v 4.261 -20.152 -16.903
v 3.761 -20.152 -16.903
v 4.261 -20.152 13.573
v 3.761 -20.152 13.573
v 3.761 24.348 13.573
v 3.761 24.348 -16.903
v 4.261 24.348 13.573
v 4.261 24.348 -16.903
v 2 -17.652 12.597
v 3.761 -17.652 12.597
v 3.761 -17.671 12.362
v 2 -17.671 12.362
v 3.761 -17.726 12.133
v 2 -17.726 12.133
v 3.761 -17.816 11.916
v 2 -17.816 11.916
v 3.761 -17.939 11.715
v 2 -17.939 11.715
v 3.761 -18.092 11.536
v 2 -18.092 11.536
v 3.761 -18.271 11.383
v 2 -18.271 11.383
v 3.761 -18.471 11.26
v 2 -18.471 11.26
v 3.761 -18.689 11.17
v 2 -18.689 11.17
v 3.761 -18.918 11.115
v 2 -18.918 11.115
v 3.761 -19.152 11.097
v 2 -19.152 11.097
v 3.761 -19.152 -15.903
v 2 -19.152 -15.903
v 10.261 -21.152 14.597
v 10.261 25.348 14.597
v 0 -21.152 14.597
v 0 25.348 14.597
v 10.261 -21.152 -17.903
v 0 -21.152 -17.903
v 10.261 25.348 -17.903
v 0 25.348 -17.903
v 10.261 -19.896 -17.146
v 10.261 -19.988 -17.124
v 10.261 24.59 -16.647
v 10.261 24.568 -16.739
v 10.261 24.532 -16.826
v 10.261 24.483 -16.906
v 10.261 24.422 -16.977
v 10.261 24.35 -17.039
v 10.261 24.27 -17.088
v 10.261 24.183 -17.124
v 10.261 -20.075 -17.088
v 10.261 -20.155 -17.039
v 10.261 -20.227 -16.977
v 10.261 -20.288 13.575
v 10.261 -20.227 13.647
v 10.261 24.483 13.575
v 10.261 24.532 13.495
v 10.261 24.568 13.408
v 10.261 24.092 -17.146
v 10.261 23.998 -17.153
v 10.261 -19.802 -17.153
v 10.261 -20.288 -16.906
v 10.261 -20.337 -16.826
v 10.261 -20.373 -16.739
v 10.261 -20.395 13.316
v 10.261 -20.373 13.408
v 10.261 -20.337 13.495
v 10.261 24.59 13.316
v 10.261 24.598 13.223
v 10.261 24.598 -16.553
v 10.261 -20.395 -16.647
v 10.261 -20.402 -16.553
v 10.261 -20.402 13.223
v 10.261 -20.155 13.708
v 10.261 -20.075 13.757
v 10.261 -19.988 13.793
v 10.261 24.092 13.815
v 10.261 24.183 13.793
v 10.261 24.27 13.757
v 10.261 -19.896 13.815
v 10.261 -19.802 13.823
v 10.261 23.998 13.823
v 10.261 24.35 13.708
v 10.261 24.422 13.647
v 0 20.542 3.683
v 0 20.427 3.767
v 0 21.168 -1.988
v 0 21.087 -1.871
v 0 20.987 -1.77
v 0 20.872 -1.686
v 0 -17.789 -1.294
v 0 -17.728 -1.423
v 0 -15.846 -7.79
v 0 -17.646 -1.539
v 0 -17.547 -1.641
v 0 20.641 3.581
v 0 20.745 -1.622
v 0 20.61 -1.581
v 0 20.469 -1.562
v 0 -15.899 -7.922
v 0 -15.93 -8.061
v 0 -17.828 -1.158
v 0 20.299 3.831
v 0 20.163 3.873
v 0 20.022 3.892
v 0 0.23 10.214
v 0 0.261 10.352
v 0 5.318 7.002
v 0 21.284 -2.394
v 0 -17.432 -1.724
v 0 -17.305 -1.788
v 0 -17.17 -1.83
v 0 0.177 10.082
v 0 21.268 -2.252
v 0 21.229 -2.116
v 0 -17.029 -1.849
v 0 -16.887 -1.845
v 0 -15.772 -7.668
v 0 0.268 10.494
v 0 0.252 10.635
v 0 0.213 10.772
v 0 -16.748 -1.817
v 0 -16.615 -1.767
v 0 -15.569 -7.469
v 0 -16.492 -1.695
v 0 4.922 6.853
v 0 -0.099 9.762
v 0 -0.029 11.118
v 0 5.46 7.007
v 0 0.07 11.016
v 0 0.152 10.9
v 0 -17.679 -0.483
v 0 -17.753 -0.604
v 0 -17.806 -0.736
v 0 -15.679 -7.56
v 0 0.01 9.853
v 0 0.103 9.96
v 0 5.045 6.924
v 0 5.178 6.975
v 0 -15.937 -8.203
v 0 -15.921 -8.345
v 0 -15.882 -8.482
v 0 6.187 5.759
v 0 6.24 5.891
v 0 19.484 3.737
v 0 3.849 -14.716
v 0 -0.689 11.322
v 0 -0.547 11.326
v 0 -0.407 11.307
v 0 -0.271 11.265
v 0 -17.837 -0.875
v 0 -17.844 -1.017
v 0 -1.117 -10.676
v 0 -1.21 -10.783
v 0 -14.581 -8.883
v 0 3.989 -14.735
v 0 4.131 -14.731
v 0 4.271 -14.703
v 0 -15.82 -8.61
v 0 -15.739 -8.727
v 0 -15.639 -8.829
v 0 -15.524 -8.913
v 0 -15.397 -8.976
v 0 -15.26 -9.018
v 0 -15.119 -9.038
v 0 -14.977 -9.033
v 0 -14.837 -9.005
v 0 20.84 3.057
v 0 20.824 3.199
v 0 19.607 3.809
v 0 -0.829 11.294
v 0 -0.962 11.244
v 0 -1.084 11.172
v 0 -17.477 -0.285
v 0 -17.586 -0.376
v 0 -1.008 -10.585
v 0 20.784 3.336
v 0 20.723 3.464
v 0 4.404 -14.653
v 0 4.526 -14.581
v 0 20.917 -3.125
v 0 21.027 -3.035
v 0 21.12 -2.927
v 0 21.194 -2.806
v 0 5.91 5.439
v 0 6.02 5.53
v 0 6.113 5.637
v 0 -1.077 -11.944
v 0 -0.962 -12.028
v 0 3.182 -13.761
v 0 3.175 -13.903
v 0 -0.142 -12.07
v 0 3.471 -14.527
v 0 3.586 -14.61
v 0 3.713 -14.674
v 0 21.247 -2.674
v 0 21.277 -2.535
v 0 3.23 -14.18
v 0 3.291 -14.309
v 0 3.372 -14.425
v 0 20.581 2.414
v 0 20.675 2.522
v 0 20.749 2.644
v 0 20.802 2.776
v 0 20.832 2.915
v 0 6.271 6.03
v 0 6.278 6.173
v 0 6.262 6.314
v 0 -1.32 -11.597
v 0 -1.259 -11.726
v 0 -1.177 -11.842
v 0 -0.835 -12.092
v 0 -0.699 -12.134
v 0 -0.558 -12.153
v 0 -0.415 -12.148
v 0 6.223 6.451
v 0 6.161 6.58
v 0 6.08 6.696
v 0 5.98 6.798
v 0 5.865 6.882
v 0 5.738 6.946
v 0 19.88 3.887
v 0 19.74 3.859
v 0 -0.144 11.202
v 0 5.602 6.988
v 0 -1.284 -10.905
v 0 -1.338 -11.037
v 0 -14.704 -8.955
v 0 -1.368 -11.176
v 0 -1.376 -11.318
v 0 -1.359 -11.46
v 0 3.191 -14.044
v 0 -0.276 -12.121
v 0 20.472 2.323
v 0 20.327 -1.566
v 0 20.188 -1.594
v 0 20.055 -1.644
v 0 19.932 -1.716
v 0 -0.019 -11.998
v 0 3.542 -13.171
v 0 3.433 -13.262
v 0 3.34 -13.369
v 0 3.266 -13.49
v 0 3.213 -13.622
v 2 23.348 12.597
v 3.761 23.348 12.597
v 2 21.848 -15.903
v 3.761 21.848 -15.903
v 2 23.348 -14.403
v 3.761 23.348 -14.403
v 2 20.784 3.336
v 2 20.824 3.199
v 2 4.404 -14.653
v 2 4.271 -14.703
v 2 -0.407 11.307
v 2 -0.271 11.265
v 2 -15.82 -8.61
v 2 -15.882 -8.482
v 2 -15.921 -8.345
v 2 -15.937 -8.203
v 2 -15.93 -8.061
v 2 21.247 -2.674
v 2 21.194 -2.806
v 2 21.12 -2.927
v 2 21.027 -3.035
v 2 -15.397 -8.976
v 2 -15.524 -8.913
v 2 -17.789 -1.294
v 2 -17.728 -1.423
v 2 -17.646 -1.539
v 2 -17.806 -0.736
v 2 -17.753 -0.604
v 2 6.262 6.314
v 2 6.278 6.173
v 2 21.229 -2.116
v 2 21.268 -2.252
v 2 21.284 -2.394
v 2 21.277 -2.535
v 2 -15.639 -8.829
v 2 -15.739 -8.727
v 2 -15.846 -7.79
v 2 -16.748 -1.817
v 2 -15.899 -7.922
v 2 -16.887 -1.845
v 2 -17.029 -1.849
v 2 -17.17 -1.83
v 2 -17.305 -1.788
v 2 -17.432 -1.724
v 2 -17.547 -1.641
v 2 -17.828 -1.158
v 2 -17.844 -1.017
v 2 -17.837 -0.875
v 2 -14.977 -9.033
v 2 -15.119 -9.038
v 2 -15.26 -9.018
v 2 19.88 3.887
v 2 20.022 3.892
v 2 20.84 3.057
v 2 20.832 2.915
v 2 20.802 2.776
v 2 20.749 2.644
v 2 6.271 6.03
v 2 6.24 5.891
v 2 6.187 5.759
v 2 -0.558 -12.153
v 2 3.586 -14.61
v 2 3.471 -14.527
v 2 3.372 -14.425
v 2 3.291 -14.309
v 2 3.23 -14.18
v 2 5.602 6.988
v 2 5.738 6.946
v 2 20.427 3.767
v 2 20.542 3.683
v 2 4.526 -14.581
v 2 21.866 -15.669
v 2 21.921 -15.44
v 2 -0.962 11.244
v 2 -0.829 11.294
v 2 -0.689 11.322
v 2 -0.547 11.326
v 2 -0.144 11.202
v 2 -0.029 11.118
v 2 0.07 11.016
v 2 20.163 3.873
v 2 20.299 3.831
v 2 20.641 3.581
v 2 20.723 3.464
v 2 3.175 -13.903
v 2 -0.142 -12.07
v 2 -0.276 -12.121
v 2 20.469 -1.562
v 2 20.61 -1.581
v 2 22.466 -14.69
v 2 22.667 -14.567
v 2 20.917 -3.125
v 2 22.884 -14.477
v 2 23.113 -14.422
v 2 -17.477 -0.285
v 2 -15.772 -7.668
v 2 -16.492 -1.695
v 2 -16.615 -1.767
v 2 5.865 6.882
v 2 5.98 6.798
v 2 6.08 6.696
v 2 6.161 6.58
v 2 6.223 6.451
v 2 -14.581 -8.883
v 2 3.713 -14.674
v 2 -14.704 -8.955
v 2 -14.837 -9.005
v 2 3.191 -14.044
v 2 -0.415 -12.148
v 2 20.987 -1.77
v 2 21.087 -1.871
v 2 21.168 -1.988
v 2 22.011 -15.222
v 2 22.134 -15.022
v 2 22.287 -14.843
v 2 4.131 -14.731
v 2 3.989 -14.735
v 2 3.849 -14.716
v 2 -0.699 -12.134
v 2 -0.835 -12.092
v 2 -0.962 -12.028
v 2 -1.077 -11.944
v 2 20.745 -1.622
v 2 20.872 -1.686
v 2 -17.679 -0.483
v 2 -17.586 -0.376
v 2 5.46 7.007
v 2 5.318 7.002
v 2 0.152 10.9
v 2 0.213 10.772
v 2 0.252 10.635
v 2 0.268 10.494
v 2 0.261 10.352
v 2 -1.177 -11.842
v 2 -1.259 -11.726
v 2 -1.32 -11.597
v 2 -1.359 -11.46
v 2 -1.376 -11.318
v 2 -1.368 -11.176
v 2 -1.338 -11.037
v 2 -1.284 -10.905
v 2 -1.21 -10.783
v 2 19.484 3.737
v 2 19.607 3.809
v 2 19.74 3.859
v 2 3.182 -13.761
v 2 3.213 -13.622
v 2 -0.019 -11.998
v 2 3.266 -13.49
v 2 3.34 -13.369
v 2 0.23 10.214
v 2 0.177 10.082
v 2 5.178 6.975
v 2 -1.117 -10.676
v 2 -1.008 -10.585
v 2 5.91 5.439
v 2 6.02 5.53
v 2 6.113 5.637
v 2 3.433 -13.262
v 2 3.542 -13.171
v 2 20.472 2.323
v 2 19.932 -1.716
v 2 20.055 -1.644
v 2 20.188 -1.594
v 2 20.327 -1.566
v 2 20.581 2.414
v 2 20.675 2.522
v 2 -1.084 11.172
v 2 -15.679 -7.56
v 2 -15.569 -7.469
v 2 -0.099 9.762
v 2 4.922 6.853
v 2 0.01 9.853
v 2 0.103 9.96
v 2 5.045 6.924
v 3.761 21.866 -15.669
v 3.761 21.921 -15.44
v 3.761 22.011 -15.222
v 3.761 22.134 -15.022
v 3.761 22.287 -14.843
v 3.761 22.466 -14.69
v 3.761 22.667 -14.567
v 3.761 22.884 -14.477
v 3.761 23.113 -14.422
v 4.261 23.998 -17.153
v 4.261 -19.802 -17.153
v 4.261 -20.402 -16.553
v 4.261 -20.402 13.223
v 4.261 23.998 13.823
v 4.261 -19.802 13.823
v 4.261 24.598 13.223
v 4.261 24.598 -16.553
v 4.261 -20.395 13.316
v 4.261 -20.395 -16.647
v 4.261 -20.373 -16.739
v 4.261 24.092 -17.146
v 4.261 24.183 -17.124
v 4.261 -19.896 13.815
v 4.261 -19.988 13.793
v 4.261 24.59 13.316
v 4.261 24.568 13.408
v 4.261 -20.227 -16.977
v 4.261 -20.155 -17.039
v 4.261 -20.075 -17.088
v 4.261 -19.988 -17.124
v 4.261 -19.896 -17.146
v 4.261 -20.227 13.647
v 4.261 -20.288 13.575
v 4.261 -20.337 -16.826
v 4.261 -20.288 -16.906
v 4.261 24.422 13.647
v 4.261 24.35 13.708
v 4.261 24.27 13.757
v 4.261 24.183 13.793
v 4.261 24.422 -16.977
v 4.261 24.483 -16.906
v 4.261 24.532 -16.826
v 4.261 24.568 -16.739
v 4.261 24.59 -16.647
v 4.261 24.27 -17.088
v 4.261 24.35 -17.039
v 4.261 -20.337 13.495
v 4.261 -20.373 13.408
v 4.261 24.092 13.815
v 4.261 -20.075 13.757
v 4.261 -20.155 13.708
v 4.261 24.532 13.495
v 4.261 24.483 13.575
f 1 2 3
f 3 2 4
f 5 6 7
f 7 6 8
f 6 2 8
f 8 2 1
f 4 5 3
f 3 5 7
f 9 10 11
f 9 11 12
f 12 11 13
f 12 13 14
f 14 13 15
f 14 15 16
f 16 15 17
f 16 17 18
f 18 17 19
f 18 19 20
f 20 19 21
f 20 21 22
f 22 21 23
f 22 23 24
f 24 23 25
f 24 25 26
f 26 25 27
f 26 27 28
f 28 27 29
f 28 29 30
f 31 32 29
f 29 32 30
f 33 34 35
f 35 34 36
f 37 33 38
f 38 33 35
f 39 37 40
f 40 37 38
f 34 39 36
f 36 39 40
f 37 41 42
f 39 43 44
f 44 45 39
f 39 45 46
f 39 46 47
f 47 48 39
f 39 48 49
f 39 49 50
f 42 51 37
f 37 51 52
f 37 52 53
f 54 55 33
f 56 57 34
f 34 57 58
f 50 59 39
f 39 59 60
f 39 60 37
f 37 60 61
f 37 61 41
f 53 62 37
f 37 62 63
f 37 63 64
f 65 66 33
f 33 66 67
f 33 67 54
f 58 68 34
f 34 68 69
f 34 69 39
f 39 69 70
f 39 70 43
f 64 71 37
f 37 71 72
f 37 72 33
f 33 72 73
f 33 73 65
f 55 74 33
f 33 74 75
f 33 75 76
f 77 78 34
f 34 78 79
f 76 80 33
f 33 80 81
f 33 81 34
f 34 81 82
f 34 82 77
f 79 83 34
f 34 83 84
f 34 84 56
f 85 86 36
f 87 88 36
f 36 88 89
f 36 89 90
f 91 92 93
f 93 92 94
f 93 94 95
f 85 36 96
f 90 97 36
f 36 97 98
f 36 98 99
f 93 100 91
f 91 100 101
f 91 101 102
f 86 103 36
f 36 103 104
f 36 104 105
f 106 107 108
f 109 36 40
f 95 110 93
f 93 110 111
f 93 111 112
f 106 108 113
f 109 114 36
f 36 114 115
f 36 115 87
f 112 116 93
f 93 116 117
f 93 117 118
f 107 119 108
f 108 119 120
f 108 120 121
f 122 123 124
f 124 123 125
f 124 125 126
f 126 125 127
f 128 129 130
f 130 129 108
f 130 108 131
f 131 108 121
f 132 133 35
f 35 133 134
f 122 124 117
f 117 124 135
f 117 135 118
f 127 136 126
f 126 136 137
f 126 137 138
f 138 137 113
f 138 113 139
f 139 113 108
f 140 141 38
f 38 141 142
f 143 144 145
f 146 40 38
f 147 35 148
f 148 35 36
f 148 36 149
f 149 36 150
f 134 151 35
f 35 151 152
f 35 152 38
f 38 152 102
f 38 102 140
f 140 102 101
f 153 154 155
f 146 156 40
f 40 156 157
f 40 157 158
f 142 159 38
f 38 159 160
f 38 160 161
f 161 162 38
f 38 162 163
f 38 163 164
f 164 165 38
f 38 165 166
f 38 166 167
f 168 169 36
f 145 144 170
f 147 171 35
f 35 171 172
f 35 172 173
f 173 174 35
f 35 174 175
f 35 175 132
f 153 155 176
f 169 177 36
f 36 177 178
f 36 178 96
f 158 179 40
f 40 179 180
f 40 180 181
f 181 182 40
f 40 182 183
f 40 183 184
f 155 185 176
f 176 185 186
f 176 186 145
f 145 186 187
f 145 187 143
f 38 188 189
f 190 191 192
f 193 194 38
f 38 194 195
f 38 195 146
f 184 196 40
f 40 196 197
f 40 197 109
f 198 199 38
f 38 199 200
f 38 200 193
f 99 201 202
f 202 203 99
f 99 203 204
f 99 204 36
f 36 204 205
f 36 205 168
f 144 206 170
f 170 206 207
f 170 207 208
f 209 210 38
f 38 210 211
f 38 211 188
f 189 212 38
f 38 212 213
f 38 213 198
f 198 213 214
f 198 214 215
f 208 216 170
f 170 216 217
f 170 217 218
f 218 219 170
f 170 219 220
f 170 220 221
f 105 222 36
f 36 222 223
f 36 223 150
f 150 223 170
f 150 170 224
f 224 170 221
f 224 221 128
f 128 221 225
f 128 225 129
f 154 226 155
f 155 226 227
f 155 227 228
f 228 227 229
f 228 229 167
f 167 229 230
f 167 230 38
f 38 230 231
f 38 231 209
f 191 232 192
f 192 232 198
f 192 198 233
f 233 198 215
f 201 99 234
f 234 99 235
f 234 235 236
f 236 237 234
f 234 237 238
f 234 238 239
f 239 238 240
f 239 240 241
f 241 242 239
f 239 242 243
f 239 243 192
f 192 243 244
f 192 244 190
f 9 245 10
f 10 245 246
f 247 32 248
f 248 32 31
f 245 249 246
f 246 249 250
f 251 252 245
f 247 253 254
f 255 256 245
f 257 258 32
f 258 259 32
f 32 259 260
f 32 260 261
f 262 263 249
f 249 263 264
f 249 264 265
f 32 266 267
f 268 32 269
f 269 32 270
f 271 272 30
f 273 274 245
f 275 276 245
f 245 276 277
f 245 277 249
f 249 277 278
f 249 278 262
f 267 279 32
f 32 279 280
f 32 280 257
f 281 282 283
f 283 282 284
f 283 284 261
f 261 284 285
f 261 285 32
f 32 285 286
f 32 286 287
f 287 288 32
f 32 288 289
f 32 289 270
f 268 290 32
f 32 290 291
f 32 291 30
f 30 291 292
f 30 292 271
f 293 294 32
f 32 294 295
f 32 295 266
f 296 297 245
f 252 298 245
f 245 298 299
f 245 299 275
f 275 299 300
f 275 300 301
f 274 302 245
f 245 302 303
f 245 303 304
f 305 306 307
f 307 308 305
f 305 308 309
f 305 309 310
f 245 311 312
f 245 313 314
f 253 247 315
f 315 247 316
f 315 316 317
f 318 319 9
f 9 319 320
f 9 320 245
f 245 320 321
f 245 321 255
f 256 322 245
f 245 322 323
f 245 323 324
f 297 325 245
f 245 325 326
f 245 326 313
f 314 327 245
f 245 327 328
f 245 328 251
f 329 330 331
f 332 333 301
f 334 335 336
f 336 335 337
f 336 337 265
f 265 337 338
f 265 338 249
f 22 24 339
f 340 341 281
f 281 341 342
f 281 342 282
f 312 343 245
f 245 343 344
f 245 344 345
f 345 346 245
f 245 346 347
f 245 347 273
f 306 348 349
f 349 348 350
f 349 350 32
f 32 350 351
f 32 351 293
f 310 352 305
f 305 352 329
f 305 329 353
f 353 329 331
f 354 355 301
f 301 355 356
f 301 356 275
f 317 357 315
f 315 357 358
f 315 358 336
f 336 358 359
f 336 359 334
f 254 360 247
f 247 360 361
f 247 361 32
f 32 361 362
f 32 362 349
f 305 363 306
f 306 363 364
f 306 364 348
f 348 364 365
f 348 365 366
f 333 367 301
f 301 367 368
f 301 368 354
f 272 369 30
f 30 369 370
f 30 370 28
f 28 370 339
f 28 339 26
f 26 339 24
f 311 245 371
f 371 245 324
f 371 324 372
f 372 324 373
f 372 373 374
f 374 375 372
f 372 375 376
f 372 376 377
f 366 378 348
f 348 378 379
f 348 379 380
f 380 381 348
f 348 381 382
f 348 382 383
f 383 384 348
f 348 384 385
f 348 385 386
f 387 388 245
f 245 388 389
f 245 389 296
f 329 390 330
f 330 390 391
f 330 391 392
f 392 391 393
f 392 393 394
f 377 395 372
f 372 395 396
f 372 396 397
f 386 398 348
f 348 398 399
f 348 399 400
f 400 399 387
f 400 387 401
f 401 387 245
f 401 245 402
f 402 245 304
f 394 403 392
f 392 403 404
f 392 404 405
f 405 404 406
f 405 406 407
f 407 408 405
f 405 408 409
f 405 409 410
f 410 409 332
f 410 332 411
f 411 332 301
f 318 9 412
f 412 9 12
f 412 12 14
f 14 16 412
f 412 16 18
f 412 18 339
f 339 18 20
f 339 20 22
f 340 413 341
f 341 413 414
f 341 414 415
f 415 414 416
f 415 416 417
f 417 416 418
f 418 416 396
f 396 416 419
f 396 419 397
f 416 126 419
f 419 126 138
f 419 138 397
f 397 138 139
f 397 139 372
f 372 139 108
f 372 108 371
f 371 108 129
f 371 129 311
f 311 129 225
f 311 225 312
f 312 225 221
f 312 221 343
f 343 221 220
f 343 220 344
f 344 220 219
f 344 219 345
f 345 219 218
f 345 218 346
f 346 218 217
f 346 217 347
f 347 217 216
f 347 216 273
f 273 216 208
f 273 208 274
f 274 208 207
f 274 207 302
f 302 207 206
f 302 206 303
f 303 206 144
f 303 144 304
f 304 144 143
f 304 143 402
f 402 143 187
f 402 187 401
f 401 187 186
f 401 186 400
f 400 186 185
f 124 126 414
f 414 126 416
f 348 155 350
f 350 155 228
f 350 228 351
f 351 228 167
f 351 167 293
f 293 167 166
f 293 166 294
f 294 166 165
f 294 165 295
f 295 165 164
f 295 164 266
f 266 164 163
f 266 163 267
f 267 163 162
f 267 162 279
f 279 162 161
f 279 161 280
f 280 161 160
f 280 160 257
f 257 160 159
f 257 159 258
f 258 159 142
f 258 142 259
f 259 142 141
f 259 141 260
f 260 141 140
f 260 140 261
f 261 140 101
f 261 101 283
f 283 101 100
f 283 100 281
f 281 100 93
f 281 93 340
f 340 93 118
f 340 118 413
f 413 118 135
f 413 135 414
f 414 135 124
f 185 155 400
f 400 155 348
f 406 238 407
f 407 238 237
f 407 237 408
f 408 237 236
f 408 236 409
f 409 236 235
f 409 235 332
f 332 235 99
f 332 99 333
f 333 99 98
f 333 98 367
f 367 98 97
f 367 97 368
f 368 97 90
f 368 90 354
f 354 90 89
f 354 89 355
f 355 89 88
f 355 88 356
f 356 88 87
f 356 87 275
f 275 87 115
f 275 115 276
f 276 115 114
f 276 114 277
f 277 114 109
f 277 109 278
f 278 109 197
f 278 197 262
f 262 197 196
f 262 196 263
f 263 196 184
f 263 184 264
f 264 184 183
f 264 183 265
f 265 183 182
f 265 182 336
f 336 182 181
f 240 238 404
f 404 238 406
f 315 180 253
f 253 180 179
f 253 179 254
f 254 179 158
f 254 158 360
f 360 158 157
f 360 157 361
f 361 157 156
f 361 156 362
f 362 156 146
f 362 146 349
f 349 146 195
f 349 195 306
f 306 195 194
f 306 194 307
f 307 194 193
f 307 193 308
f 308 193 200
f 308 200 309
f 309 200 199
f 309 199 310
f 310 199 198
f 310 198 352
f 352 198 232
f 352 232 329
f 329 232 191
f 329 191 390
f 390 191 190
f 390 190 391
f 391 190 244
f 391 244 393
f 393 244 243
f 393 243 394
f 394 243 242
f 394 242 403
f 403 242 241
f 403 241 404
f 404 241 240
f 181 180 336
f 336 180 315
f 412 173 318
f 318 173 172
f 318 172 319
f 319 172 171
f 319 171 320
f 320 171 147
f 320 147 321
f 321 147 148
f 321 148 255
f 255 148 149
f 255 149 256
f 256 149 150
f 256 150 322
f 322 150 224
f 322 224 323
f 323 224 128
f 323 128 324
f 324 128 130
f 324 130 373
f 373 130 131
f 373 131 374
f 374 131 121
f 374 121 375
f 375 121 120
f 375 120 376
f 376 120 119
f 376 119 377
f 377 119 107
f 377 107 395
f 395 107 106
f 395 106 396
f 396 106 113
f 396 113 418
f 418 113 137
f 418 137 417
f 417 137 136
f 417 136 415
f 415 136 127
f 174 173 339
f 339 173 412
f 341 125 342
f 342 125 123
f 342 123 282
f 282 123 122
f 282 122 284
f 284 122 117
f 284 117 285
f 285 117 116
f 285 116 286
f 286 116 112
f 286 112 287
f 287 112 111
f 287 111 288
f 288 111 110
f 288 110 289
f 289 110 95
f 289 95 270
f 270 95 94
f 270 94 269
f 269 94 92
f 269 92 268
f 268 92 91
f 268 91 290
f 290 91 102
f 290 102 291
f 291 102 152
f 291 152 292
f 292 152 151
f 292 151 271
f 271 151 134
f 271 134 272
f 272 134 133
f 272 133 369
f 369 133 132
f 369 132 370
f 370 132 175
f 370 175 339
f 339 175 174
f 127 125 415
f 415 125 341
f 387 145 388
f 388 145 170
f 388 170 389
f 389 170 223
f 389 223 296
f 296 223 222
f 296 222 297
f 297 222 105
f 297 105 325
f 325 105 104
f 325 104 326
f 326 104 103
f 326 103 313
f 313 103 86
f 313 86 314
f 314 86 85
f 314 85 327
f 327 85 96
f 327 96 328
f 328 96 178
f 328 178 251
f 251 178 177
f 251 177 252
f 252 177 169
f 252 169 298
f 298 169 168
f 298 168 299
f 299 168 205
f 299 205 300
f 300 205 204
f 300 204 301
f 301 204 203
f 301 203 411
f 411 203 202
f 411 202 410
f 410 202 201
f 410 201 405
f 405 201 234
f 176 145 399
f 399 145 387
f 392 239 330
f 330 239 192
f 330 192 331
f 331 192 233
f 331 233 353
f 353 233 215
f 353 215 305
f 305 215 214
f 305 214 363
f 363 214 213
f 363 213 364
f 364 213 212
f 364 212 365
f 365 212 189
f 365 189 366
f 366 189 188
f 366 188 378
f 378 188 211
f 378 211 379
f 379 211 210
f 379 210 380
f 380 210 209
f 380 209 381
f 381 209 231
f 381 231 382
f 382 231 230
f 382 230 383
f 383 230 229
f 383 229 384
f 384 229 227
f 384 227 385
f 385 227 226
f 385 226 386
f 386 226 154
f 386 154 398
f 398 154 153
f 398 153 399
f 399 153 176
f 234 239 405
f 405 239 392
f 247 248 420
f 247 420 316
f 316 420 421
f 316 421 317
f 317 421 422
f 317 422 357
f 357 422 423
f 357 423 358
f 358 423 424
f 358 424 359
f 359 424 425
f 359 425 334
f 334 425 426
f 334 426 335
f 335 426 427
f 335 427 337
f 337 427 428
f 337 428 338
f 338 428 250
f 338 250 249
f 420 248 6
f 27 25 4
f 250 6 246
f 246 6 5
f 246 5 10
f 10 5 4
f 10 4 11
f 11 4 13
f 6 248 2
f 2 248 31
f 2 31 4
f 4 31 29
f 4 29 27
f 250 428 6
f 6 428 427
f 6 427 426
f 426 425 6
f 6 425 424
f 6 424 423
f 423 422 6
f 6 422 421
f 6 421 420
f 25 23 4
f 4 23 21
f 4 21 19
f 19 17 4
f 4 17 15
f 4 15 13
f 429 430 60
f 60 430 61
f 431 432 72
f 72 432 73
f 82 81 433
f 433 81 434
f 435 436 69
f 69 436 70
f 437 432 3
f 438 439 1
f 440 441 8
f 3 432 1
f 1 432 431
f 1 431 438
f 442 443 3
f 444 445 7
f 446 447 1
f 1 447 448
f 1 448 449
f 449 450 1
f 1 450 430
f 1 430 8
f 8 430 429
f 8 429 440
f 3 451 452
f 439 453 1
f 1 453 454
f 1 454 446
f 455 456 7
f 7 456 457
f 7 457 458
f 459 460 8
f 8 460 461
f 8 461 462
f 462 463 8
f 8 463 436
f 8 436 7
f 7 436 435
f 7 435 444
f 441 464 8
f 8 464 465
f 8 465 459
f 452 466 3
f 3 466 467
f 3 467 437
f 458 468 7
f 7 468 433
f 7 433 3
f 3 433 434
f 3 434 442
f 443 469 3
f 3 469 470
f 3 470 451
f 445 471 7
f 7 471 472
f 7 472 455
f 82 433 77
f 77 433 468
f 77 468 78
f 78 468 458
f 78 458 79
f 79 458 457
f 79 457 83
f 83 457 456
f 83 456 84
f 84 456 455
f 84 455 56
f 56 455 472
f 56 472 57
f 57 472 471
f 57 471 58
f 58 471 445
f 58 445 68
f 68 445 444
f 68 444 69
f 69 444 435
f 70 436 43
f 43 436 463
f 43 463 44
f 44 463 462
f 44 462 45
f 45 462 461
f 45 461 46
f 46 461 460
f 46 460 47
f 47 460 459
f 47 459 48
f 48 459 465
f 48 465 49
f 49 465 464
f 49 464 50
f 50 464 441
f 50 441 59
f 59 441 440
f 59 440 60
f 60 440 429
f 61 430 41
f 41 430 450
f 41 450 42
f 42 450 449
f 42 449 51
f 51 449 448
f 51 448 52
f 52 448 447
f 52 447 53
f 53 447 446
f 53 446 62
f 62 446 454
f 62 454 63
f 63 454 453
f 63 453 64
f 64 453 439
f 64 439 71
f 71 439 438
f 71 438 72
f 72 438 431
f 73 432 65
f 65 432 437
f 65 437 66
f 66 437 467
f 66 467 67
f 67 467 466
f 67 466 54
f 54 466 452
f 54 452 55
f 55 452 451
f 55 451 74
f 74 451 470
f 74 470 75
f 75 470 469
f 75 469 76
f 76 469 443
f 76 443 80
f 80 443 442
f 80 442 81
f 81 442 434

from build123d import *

# Parameters (mm, degrees)
SKETCH1_W           = 32.5
SKETCH1_H           = 46.5
BOSS_EXTRUDE2_DEPTH = 10.261196577
SHELL1_T            = -2
CUT_EXTRUDE1_DEPTH  = 6
SKETCH3_R           = 1.5
BOSS_EXTRUDE3_DEPTH = 10.261197
CUT_EXTRUDE2_DEPTH  = 6.5
SKETCH5_W           = 28.5
SKETCH5_H           = 1
CUT_EXTRUDE3_DEPTH  = 6.5
CUT_EXTRUDE4_DEPTH  = 6.5
CUT_EXTRUDE5_DEPTH  = 6
SKETCH9_W           = 20.936862588
SKETCH9_H           = 0.25
CUT_EXTRUDE6_DEPTH  = 6
FILLET1_R           = 0.6


with BuildPart() as part:
    # Sketch1 → Boss-Extrude2 (new body)
    with BuildSketch(Plane(origin=(0, 0, 0), x_dir=(0, 0, -1), z_dir=(1, 0, 0))):
        with Locations((1.653195489, 2.097744361)):
            Rectangle(SKETCH1_W, SKETCH1_H)
    extrude(amount=BOSS_EXTRUDE2_DEPTH)

    # Shell1
    shell1_openings = [part.faces().sort_by_distance(p)[0] for p in [
        (10.261196577, 2.097744361, -1.653195489),
    ]]
    offset(amount=SHELL1_T, openings=shell1_openings, kind=Kind.INTERSECTION)

    # Sketch2 → Cut-Extrude1 (cut)
    with BuildSketch(Plane.ZY):
        with BuildLine():
            Line((5.438656476, 5.910225306), (-8.88311082, -14.580918672))
            ThreePointArc((-8.88311082, -14.580918672), (-8.670273984, -15.781926533), (-7.469266123, -15.569089697))
            Line((-7.469266123, -15.569089697), (6.852501173, 4.922054281))
            ThreePointArc((6.852501173, 4.922054281), (6.639664337, 6.123062142), (5.438656476, 5.910225306))
        make_face()
        with BuildLine():
            Line((9.762292675, -0.098981343), (-1.695121162, -16.491896525))
            ThreePointArc((-1.695121162, -16.491896525), (-1.482506801, -17.689391949), (-0.285011378, -17.476777587))
            Line((-0.285011378, -17.476777587), (11.17208338, -1.084318933))
            ThreePointArc((11.17208338, -1.084318933), (10.959856822, 0.113245215), (9.762292675, -0.098981343))
        make_face()
        with BuildLine():
            Line((2.323350937, 20.471761321), (-11.998416359, -0.019382657))
            ThreePointArc((-11.998416359, -0.019382657), (-11.785579523, -1.220390518), (-10.584571661, -1.007553682))
            Line((-10.584571661, -1.007553682), (3.737195635, 19.483590296))
            ThreePointArc((3.737195635, 19.483590296), (3.524358799, 20.684598157), (2.323350937, 20.471761321))
        make_face()
        with BuildLine():
            Line((-3.125347413, 20.917445103), (-14.581484934, 4.526356034))
            ThreePointArc((-14.581484934, 4.526356034), (-14.368482992, 3.328930591), (-13.171057549, 3.541932534))
            Line((-13.171057549, 3.541932534), (-1.715558185, 19.932108547))
            ThreePointArc((-1.715558185, 19.932108547), (-1.927784521, 21.129671439), (-3.125347413, 20.917445103))
        make_face()
    extrude(amount=-CUT_EXTRUDE1_DEPTH, mode=Mode.SUBTRACT)

    # Sketch3 → Boss-Extrude3 (add)
    with BuildSketch(Plane(origin=(10.261196577, 0, 0), x_dir=(0, 0, -1), z_dir=(1, 0, 0))):
        with Locations((15.903195489, 23.347744361)):
            Circle(SKETCH3_R)
        with Locations((-12.596804511, -19.152255639)):
            Circle(SKETCH3_R)
    extrude(amount=-BOSS_EXTRUDE3_DEPTH)

    # Sketch4 → Cut-Extrude2 (cut)
    with BuildSketch(Plane(origin=(10.261196577, 0, 0), x_dir=(0, 0, -1), z_dir=(1, 0, 0))):
        Polygon((-13.572559932, 24.347744361), (-13.572559932, -20.152255639), (-12.596804511, -20.152255639), (-12.596804511, 23.347744361), (15.903195489, 23.347744361), (15.903195489, -20.152255639), (16.903195489, -20.152255639), (16.903195489, 24.347744361), align=None)
    extrude(amount=-CUT_EXTRUDE2_DEPTH, mode=Mode.SUBTRACT)

    # Sketch5 → Cut-Extrude3 (cut)
    with BuildSketch(Plane(origin=(10.261196577, 0, 0), x_dir=(0, 0, -1), z_dir=(1, 0, 0))):
        with Locations((1.653195489, -19.652255639)):
            Rectangle(SKETCH5_W, SKETCH5_H)
    extrude(amount=-CUT_EXTRUDE3_DEPTH, mode=Mode.SUBTRACT)

    # Sketch6 → Cut-Extrude4 (cut)
    with BuildSketch(Plane(origin=(10.261196577, 0, 0), x_dir=(0, 0, -1), z_dir=(1, 0, 0))):
        with BuildLine():
            Line((-12.596804511, -17.652255639), (-12.596804511, -19.152255639))
            Line((-12.596804511, -19.152255639), (-11.096804511, -19.152255639))
            ThreePointArc((-11.096804511, -19.152255639), (-11.536144339, -18.091595467), (-12.596804511, -17.652255639))
        make_face()
        with BuildLine():
            Line((15.903195489, 23.347744361), (15.903195489, 21.847744361))
            ThreePointArc((15.903195489, 21.847744361), (14.842535317, 22.287084189), (14.403195489, 23.347744361))
            Line((14.403195489, 23.347744361), (15.903195489, 23.347744361))
        make_face()
    extrude(amount=-CUT_EXTRUDE4_DEPTH, mode=Mode.SUBTRACT)

    # Sketch8 → Cut-Extrude5 (cut)
    with BuildSketch(Plane(origin=(10.261196577, 0, 0), x_dir=(0, 0, -1), z_dir=(1, 0, 0))):
        Polygon((17.153195489, 24.304666322), (17.153195489, -20.402255639), (7.364302656, -20.402255639), (7.364302656, -20.152255639), (16.903195489, -20.152255639), (16.903195489, 24.347744361), (-13.572559932, 24.347744361), (-13.572559932, -20.402255639), (-13.822559932, -20.402255639), (-13.822559932, 19.230791598), (-13.822559932, 24.597744361), (15.426743448, 24.597744361), (17.153195489, 24.597744361), align=None)
    extrude(amount=-CUT_EXTRUDE5_DEPTH, mode=Mode.SUBTRACT)

    # Sketch9 → Cut-Extrude6 (cut)
    with BuildSketch(Plane(origin=(10.261196577, 0, 0), x_dir=(0, 0, -1), z_dir=(1, 0, 0))):
        with Locations((-3.104128638, -20.277255639)):
            Rectangle(SKETCH9_W, SKETCH9_H)
    extrude(amount=-CUT_EXTRUDE6_DEPTH, mode=Mode.SUBTRACT)

    # Fillet1
    fillet1_edges = [part.edges().sort_by_distance(p)[0] for p in [
        (7.261196577, 24.597744361, -17.153195489),
        (7.261196577, -20.402255639, -17.153195489),
        (7.261196577, -20.402255639, 13.822559932),
        (7.261196577, 24.597744361, 13.822559932),
    ]]
    fillet(fillet1_edges, radius=FILLET1_R)


solid = part.part
